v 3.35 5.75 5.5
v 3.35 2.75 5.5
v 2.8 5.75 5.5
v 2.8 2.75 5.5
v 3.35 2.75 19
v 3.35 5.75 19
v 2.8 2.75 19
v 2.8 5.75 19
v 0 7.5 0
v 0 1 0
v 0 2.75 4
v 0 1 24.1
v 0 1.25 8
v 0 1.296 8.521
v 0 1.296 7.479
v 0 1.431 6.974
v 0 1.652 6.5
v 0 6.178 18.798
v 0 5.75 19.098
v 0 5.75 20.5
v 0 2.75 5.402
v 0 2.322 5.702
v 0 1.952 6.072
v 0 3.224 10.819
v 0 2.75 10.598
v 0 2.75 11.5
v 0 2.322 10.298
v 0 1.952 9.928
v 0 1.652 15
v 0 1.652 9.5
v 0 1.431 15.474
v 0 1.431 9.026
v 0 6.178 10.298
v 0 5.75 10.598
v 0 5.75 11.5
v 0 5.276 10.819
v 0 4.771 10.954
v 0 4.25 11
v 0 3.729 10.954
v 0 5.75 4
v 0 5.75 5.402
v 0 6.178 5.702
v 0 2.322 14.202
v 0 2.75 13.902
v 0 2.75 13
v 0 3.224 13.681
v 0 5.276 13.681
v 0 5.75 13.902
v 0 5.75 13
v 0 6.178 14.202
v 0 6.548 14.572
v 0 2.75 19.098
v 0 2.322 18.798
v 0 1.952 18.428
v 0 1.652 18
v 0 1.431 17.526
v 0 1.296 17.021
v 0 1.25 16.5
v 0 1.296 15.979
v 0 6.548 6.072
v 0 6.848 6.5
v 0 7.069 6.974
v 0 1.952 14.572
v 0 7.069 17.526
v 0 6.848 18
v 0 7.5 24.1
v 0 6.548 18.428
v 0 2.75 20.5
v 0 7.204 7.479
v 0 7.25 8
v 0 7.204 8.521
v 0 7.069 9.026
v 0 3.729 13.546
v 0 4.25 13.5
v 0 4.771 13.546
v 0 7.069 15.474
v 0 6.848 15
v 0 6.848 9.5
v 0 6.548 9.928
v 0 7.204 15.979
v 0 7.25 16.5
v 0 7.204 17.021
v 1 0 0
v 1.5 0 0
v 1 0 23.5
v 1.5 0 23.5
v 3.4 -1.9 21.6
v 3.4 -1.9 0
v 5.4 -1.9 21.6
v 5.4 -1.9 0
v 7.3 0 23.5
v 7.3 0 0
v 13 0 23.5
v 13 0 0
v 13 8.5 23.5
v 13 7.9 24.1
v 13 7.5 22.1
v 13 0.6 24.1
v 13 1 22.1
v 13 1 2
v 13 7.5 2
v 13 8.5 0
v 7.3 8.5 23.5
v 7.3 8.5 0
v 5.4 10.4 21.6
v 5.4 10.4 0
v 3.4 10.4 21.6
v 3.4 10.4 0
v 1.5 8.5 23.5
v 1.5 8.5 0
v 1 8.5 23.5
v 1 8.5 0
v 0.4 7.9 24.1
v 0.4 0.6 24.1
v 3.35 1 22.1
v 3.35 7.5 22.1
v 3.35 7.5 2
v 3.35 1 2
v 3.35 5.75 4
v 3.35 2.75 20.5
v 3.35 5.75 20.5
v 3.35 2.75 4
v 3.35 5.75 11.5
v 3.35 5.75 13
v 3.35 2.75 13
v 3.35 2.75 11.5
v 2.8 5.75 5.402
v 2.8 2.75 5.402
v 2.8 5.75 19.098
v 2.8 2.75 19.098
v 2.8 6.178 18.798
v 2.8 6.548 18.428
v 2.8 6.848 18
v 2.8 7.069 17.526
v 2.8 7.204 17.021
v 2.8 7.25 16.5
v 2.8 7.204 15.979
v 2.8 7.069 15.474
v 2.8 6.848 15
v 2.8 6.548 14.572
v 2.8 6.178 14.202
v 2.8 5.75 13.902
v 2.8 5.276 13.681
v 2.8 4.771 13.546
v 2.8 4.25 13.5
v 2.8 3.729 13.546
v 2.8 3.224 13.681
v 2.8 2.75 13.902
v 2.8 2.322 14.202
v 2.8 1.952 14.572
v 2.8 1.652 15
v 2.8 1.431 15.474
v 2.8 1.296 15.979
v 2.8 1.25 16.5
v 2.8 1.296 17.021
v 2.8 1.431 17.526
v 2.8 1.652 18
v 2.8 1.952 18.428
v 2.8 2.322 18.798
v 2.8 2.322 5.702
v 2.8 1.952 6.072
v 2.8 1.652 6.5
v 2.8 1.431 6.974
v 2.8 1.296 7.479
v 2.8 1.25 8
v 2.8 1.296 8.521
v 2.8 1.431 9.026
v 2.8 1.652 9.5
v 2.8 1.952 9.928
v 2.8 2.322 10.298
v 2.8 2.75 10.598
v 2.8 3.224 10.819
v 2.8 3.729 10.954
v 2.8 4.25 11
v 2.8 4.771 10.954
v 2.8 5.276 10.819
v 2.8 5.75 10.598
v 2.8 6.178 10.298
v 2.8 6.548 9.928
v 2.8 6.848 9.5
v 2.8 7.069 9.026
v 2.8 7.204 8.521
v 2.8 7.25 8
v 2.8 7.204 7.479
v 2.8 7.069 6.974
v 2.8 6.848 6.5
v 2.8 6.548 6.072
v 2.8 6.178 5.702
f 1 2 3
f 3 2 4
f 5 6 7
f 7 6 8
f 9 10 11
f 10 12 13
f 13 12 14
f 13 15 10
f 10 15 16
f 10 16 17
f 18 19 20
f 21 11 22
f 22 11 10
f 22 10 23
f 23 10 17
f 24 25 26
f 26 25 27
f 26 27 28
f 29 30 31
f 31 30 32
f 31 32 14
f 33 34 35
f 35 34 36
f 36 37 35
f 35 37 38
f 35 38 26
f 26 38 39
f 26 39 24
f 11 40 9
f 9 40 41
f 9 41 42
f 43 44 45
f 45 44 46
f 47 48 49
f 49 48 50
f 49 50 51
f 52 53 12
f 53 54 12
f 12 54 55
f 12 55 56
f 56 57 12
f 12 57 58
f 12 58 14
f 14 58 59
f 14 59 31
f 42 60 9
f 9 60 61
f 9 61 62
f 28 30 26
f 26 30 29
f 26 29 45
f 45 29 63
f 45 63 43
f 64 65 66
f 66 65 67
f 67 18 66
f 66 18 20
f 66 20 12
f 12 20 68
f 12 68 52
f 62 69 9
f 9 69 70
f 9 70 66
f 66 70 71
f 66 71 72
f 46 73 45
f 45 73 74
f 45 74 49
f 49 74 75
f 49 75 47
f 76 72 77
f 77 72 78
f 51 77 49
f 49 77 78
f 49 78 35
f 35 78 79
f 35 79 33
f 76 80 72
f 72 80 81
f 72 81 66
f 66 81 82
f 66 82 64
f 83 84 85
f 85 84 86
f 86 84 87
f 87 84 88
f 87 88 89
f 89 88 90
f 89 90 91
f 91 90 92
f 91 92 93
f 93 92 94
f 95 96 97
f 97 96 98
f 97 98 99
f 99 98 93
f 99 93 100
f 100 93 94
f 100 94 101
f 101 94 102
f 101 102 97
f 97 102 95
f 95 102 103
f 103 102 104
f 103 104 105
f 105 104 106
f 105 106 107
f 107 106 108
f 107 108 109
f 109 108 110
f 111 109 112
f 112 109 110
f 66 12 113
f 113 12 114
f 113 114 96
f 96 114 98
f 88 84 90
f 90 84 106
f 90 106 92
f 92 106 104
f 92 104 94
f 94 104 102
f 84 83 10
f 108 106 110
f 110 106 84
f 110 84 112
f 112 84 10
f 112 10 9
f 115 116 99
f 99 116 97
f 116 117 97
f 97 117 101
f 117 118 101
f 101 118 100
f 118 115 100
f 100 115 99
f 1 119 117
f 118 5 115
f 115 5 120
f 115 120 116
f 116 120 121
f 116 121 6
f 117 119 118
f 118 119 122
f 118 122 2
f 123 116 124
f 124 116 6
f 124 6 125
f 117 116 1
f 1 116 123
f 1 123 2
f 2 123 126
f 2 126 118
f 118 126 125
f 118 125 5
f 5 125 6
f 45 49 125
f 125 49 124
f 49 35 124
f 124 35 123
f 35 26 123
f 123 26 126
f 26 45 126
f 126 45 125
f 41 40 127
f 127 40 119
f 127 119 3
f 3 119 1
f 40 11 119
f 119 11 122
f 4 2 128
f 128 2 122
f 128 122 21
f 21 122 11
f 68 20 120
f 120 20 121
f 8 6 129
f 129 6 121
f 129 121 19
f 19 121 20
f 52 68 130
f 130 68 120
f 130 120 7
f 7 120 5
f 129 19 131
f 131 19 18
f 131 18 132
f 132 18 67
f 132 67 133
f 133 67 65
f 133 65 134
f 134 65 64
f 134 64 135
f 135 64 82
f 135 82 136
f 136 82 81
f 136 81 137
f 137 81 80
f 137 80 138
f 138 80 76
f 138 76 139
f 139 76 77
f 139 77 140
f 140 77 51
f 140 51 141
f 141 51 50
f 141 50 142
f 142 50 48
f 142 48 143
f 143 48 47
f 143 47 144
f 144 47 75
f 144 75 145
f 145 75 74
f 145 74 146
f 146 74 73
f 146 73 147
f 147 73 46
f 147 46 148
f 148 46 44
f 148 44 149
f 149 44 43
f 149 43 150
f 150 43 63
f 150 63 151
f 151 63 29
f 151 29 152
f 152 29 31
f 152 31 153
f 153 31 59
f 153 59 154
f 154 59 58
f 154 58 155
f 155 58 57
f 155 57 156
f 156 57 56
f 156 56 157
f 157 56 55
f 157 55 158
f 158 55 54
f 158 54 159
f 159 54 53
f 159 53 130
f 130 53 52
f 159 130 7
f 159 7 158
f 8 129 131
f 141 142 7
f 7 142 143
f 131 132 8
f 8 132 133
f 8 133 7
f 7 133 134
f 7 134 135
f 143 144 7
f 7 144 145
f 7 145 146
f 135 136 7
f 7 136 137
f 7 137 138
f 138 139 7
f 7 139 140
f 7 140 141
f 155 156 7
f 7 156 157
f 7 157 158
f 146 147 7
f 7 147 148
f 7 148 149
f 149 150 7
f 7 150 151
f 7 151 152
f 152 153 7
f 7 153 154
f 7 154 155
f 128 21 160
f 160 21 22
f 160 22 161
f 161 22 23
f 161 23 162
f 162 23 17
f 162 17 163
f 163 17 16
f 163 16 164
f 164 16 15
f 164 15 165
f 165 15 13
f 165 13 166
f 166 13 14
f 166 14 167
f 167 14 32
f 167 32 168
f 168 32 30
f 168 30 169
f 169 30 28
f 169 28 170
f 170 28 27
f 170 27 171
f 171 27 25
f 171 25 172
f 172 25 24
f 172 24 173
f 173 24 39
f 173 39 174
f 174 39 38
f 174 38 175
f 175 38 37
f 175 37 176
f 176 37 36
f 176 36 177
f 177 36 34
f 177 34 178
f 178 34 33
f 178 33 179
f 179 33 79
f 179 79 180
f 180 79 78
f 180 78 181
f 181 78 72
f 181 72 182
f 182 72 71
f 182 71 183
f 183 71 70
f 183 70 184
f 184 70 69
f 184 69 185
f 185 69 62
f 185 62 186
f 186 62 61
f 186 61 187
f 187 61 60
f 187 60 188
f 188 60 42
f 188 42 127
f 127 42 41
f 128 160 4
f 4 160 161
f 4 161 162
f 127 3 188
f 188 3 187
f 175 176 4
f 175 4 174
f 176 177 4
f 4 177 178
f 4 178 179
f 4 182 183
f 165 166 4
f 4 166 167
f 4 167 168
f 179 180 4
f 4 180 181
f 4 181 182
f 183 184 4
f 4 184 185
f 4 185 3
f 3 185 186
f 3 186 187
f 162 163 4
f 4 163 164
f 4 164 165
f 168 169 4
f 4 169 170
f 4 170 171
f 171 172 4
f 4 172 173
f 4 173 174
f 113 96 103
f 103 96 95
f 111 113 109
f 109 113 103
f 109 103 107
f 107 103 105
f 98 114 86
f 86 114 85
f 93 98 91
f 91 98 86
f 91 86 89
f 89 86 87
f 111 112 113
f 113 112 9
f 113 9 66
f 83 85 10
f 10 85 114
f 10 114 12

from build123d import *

# Parameters (mm, degrees)
BOSS_EXTRUDE1_DEPTH = 24.1
SKETCH2_W           = 20.1
SKETCH2_H           = 6.5
CUT_EXTRUDE1_DEPTH  = 9.65
SKETCH3_W           = 1.5
SKETCH3_H           = 3
CUT_EXTRUDE2_DEPTH  = 28.965916756
SKETCH4_R           = 3
CUT_EXTRUDE3_DEPTH  = 2.8
CUT_EXTRUDE4_DEPTH  = 30.291124936
CHAMFER1_SIZE       = 1


with BuildPart() as part:
    # Sketch1 → Boss-Extrude1 (new body)
    with BuildSketch(Plane.XY):
        Polygon((0, 8.5), (1.5, 8.5), (3.4, 10.4), (5.4, 10.4), (7.3, 8.5), (13, 8.5), (13, 0), (7.3, 0), (5.4, -1.9), (3.4, -1.9), (1.5, 0), (0, 0), align=None)
    extrude(amount=BOSS_EXTRUDE1_DEPTH)

    # Sketch2 → Cut-Extrude1 (cut)
    with BuildSketch(Plane(origin=(13, 0, 0), x_dir=(0, 0, -1), z_dir=(1, 0, 0))):
        with Locations((-12.05, 4.25)):
            Rectangle(SKETCH2_W, SKETCH2_H)
    extrude(amount=-CUT_EXTRUDE1_DEPTH, mode=Mode.SUBTRACT)

    # Sketch3 → Cut-Extrude2 (cut, through all)
    with BuildSketch(Plane(origin=(3.35, 0, 0), x_dir=(0, 0, -1), z_dir=(1, 0, 0))):
        with Locations((-4.75, 4.25)):
            Rectangle(SKETCH3_W, SKETCH3_H)
        with Locations((-19.75, 4.25)):
            Rectangle(SKETCH3_W, SKETCH3_H)
        with Locations((-12.25, 4.25)):
            Rectangle(SKETCH3_W, SKETCH3_H)
    extrude(amount=-CUT_EXTRUDE2_DEPTH, mode=Mode.SUBTRACT)

    # Sketch4 → Cut-Extrude3 (cut)
    with BuildSketch(Plane.ZY):
        with Locations((8, 4.25)):
            Circle(SKETCH4_R)
        with Locations((16.5, 4.25)):
            Circle(SKETCH4_R)
    extrude(amount=-CUT_EXTRUDE3_DEPTH, mode=Mode.SUBTRACT)

    # Sketch5 → Cut-Extrude4 (cut, through all)
    with BuildSketch(Plane.ZY):
        Polygon((24.1, -1.9), (24.1, 0.6), (21.6, -1.9), align=None)
        Polygon((21.6, 10.4), (24.1, 10.4), (24.1, 7.9), align=None)
    extrude(amount=-CUT_EXTRUDE4_DEPTH, mode=Mode.SUBTRACT)

    # Chamfer1
    chamfer1_edges = [part.edges().sort_by_distance(p)[0] for p in [
        (0, 8.5, 11.75),
        (0, 0, 11.75),
    ]]
    chamfer(chamfer1_edges, length=CHAMFER1_SIZE)


solid = part.part
